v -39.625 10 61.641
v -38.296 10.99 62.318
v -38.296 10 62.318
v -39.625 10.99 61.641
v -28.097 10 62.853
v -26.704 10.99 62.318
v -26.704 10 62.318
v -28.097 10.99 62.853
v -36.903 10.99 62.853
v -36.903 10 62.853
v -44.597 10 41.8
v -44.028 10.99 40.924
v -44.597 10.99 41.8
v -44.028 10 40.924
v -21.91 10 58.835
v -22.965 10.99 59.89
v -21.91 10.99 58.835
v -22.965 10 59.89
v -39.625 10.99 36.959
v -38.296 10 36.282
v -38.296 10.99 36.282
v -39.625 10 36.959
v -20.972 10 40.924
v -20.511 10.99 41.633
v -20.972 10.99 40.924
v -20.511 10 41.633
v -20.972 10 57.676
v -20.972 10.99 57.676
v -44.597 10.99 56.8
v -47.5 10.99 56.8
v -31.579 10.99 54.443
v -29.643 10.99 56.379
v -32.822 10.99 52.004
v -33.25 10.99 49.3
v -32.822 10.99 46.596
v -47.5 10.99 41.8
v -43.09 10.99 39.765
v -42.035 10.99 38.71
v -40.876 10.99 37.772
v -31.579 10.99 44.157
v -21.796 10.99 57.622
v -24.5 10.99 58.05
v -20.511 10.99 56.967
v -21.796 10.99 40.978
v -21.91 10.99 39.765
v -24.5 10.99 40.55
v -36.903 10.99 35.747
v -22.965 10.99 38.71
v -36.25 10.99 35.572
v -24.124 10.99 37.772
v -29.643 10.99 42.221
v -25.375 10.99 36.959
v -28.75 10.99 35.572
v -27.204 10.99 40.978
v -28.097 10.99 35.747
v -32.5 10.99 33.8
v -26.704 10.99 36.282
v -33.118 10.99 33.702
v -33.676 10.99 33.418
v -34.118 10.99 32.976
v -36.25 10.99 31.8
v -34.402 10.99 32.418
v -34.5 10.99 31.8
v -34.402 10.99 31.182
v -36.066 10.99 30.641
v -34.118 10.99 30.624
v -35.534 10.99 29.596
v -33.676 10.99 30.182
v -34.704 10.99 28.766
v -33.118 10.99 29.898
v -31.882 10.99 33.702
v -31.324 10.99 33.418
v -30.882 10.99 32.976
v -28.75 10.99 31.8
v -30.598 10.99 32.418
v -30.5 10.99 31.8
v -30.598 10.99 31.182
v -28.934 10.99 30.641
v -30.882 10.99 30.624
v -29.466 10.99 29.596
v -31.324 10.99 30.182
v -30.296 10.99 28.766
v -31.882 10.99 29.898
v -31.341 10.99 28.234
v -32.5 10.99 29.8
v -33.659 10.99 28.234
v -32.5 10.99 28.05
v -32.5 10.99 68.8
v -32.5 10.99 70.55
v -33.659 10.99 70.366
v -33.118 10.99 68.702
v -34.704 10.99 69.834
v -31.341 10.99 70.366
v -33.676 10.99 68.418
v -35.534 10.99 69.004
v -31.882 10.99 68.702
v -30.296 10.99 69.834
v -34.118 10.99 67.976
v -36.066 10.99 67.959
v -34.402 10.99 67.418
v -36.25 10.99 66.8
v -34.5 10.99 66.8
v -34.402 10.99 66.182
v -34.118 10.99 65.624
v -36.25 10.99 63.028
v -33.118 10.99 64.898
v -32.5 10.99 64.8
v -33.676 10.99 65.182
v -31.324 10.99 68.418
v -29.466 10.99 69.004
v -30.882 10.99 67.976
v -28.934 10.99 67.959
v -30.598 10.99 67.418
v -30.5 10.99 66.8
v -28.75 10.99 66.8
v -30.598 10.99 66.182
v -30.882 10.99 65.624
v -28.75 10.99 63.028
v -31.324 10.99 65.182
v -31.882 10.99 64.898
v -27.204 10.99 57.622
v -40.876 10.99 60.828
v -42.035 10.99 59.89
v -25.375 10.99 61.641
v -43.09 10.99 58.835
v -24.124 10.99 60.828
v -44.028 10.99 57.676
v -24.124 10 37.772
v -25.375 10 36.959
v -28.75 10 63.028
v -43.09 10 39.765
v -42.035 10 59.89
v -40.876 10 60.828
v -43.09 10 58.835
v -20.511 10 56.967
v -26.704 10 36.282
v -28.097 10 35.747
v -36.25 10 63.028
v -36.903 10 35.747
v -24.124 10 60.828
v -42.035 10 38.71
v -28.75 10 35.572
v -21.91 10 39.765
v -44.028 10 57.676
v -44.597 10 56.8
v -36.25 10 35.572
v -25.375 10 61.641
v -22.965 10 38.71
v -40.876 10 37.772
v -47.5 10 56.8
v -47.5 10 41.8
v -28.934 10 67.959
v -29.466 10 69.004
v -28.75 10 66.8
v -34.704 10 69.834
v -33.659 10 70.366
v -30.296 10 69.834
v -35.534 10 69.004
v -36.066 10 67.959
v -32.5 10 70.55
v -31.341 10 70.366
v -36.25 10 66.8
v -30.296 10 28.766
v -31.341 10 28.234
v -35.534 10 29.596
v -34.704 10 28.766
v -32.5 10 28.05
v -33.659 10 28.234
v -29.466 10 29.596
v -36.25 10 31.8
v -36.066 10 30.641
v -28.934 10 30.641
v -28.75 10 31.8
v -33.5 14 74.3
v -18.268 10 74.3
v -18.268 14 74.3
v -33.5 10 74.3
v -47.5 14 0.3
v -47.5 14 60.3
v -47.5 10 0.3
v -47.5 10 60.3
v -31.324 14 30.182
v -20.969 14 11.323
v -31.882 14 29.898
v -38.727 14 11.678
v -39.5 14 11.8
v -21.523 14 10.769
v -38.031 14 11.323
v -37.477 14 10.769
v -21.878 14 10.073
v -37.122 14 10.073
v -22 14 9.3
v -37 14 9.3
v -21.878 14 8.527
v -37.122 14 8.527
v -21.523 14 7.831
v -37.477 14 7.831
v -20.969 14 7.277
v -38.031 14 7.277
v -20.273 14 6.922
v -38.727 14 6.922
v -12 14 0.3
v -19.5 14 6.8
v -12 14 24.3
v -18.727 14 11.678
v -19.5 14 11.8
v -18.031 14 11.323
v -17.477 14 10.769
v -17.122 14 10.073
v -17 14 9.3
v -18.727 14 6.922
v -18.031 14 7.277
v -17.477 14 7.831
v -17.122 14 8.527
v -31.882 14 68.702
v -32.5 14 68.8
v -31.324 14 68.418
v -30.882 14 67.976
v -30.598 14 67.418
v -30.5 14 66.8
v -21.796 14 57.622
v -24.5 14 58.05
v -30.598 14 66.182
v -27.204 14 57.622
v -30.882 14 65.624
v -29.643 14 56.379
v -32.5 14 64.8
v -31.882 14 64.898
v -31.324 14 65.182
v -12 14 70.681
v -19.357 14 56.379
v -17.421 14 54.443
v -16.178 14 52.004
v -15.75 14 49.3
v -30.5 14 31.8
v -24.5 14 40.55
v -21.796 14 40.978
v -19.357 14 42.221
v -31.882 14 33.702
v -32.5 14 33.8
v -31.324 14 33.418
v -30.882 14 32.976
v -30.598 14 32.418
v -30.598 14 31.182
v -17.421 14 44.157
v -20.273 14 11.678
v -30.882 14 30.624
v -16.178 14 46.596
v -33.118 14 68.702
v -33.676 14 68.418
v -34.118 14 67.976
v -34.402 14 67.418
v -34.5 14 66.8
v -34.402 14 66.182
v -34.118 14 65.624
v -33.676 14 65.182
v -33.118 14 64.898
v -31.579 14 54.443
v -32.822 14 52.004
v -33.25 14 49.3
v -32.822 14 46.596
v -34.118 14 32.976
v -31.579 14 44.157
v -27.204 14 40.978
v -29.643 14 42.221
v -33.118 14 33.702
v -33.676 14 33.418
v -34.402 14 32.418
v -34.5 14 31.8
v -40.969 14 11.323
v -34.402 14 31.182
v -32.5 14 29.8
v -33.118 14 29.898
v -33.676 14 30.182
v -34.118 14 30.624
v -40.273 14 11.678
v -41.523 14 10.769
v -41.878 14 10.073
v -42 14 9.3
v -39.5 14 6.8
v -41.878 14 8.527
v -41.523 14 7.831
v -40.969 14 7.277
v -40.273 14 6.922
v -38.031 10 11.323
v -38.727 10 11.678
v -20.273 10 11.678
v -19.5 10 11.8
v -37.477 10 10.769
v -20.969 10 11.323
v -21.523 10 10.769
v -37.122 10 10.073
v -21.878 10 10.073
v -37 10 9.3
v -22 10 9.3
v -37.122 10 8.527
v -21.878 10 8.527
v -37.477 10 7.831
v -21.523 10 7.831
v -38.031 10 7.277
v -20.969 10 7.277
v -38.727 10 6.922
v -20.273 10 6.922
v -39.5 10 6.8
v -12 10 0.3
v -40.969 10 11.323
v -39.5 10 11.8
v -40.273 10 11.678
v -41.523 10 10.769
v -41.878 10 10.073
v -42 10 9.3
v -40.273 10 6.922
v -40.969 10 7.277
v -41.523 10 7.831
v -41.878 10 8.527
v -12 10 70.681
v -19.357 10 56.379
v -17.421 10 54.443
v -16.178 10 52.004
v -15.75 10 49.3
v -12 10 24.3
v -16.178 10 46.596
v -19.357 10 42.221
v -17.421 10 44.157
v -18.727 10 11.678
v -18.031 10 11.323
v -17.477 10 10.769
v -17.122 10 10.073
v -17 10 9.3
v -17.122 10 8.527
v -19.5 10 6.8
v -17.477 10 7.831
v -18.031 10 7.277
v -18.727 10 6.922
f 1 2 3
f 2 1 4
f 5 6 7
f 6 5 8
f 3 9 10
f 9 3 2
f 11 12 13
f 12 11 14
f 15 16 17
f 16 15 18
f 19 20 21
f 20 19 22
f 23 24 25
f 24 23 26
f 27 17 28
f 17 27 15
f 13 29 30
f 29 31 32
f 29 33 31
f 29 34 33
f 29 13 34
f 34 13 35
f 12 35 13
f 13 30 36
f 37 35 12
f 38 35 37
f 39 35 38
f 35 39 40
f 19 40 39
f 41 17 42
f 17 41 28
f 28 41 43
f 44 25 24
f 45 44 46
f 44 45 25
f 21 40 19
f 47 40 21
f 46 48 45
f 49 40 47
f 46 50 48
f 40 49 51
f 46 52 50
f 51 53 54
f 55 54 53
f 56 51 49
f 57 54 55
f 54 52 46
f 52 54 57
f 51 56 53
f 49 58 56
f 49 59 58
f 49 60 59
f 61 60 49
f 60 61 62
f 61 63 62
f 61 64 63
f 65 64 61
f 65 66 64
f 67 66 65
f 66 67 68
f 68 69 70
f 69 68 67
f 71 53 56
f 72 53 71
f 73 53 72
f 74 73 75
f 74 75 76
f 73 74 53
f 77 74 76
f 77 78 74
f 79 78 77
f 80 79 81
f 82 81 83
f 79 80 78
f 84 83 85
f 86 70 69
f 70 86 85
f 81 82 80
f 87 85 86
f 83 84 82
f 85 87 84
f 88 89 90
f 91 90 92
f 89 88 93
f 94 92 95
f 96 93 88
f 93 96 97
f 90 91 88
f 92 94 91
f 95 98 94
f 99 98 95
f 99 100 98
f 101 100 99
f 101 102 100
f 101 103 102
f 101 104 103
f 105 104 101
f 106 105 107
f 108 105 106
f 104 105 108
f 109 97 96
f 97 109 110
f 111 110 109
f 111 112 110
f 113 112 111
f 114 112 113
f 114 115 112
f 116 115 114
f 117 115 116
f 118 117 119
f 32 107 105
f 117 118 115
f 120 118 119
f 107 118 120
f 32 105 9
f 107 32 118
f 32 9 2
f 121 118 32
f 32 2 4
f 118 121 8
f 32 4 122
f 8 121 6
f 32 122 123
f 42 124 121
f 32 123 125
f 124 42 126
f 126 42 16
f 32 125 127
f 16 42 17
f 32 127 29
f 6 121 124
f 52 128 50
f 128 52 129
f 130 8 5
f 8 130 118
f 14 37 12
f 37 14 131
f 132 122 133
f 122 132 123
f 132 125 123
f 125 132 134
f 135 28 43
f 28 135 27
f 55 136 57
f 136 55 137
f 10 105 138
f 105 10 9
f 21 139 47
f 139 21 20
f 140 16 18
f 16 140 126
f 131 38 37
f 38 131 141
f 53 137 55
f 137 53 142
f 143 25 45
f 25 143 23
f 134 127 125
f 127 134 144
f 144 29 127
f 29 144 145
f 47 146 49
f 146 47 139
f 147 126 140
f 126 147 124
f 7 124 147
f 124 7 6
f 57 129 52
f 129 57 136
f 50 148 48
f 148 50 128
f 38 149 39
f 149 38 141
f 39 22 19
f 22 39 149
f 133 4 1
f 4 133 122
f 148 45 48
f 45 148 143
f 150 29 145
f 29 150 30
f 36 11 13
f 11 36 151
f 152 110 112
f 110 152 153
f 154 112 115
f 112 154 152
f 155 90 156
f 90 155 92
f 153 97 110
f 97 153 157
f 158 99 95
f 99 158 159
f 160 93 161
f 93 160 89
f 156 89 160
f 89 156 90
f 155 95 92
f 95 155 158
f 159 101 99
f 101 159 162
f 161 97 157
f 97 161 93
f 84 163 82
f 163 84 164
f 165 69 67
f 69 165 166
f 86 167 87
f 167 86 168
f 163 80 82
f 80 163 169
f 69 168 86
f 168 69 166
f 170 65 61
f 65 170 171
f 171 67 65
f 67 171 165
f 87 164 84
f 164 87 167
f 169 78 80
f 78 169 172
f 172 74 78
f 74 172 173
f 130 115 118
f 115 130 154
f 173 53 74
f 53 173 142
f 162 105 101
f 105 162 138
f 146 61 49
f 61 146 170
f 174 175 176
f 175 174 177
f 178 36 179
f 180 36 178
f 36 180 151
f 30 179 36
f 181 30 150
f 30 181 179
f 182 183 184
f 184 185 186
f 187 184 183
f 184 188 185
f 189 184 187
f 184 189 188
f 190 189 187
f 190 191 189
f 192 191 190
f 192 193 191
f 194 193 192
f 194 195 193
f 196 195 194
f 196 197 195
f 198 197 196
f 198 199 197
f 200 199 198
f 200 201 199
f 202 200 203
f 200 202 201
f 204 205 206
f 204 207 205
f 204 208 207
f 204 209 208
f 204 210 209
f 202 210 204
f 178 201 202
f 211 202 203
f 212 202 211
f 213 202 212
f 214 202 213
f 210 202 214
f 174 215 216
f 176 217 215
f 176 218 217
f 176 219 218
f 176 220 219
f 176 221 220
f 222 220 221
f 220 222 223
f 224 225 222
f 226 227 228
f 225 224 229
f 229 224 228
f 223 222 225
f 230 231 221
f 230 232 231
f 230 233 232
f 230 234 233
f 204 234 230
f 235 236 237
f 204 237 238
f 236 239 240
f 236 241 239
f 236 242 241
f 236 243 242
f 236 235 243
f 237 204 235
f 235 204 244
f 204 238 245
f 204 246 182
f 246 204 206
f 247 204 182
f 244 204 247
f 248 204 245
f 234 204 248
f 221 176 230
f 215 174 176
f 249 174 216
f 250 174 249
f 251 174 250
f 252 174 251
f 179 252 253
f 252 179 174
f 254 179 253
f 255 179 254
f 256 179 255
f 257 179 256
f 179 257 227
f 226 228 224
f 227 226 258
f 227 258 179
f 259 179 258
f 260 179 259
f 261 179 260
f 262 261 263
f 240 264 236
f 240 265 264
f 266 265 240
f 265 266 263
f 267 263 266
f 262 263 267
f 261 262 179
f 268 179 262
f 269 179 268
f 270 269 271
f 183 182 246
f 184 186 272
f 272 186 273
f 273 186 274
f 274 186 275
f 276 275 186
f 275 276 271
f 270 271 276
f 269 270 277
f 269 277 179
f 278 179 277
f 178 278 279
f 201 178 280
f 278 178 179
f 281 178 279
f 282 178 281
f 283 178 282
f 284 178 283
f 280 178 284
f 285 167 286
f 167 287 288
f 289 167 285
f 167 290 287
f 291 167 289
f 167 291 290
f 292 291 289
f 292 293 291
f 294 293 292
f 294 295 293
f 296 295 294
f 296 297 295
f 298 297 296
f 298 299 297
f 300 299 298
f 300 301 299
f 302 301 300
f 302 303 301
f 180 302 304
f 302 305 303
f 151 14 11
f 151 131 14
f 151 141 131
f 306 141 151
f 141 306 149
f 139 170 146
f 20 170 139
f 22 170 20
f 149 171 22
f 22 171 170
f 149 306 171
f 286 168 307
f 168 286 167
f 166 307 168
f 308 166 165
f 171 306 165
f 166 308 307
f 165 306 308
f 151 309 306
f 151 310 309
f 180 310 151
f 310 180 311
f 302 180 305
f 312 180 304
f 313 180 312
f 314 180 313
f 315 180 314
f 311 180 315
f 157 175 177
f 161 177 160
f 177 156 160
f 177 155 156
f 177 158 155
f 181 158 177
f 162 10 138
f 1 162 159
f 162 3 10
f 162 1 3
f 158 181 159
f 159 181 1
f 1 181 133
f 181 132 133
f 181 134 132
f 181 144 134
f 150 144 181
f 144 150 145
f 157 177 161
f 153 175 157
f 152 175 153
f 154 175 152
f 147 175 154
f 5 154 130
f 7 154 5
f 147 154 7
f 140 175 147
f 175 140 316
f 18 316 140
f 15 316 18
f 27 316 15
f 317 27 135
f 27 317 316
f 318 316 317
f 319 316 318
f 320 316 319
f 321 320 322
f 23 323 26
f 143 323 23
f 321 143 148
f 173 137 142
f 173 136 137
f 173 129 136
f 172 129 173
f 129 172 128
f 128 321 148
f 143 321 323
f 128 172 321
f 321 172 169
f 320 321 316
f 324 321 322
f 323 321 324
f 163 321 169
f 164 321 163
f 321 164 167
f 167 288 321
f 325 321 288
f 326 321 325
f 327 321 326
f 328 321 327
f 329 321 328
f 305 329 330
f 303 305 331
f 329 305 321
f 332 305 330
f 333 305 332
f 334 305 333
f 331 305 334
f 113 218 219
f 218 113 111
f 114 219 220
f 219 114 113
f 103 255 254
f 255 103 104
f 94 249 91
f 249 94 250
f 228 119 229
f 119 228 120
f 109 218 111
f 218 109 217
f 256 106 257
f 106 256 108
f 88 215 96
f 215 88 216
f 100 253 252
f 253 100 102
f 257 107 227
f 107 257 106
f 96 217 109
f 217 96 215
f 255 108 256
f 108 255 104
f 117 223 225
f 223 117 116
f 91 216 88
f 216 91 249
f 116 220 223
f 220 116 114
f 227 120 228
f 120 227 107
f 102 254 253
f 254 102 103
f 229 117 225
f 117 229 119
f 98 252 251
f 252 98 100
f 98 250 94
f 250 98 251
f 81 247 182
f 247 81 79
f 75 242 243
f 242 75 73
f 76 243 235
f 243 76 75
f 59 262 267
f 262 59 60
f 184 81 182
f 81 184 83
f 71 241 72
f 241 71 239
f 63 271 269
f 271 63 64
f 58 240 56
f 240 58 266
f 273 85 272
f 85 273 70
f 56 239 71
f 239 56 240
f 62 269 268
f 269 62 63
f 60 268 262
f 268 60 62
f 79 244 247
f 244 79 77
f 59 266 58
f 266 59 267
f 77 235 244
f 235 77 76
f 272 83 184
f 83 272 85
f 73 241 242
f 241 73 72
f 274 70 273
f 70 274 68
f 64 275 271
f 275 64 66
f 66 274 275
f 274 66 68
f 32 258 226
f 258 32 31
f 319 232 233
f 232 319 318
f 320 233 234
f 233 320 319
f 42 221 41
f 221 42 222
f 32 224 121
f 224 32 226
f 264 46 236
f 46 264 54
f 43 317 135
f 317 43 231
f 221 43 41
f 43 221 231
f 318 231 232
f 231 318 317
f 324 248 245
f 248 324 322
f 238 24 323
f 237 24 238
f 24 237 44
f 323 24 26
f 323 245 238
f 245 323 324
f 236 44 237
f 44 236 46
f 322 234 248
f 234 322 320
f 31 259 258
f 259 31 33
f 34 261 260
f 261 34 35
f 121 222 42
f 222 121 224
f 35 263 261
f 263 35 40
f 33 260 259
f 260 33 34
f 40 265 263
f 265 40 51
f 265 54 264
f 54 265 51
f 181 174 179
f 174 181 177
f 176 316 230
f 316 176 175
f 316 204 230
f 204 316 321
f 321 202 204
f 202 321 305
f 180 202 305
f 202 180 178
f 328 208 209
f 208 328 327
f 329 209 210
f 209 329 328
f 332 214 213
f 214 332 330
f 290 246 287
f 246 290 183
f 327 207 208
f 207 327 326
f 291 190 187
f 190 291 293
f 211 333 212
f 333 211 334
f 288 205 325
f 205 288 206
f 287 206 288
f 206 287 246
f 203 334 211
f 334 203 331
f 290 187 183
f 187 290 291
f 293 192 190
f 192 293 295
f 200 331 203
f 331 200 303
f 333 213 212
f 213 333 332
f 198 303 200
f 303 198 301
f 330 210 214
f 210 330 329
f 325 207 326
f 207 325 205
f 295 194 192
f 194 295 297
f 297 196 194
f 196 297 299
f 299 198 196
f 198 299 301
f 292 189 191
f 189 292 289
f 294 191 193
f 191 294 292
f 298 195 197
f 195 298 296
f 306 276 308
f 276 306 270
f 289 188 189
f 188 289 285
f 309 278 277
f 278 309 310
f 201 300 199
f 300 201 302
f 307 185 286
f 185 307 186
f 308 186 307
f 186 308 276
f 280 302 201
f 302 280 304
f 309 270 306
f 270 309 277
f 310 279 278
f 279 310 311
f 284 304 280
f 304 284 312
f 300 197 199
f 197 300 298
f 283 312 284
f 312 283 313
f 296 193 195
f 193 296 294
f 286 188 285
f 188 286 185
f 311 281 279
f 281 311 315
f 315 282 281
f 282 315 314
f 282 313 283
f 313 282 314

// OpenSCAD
// Fixation d'un moteur 28BYJ-48 sur une barre V-slot 20x20 
// v1 a été imprimé.
//    *  La hauteur de la monture est insuffisante.
//    *  dans les coupures de droites sont trop importantes.
//    *  les deux trous de fixation sont un peu trop proches l'un de l'autre
// V2 a été imprimé.
// je dois déplacer les trous de fixation de la monture sur le rail. 
// Faire  un trou dans la monture pour que le pignon ne frotte pas sur la monture.
// barre V-Slot

// nov 2023 : versino pour fixer un second moteur.abs

bar_y = 20;
bar_z = 20;
// petite barre de guidage (optionnelle)
y_width_hole = 2 ;
z_width_hole = 5.5 ;

// pm : pooley_mount
pm_x = 55; 
pm_y = 4;
pm_z = 50;


module bar_20x20(){
    %cube([100, 20, 20], center = true);
};
    
module hole_m5(){
    rotate([90, 0, 0]) cylinder(h=20, r=mp_hole1_r, center = true, $fn=20);
}

module hole_m4(){
    rotate([90, 0, 0]) cylinder(h=20, r=2, center = true, $fn=20);
}

// pour fixer la monture, 2 trous de m5 distants de 10 mm.
mp_hole1_r = 5/2 ;
pm_hole1_d1 = 0 + 5;
pm_hole1_d2 = pm_hole1_d1 + 12;

module mount(){
    pm_hole2_d = 40 ; // distance de percage des trous tenant le moteur / bord droit de la mouture
    pm_hole2_distance = 35; // écart entre les trous tenant le moteur
    pm_hole2_r = 4/2;
    // motor
m_dist_to_shaft = 8 ; //
m_shaft_hole_r = (16 + 1.5) /2 ;
m_radius = (28 + 0.5) / 2; // diamètre général pour la découpe
m_pattes_defixation = 7 + 0.5;
m_profondeur = 1 ; // profondeur de la découpe pour loguer le moteur 
    
    difference(){
        // le bloc principal
        union(){
        //translate ([0, -(bar_y + pm_y)/2, 0 ])  
        cube([pm_x, pm_y, pm_z], center =true );
        
        // on ajoute une petite barre pour mieux aligner la fixation
        // translate([(pm_x-22)/2, (pm_y + y_width_hole)/2, 0])
        // cube([22, y_width_hole, z_width_hole], center = true);
        }
    // trous de fixation sur le rail
    translate ([(pm_x) /2 - pm_hole1_d1, 0, 0]) hole_m5();
    translate ([(pm_x) /2 - pm_hole1_d2, 0, 0]) hole_m5();
    // trous de fixation du moteur par 2 boulons de m4
    translate ([(pm_x) /2 - pm_hole2_d, 0, pm_hole2_distance/2]) hole_m4();
    translate ([(pm_x) /2 - pm_hole2_d, 0, -pm_hole2_distance/2]) hole_m4();
    
    // trou pour axe moteur
    translate([(pm_x/2 - pm_hole2_d + m_dist_to_shaft) ,0,  0])
    rotate([90, 0, 0]) cylinder(h=20, r=m_shaft_hole_r, center = true, $fn=20 );
    
        
    // découpe pour mieux fixer
    // un grand rond  et     // un échappement pour les fils
    d_x = 15    ; 
    d_z = 15 ;
        
    translate([(pm_x) /2 - pm_hole2_d,-(pm_y- m_profondeur)/2-0.01,0]){
        rotate([90, 0, 0]) cylinder(h=m_profondeur, r=m_radius, center = true, $fn=60);
        // zone d'échappement des fils
        translate([-20, -d_x + m_profondeur/2, -d_z/2])
        cube([d_x,d_x,d_z]);   
        // 2 petits cylindre pour loguer les pattes
        translate([0, 0, pm_hole2_distance/2])
        rotate([90, 0, 0]) cylinder(h=m_profondeur, r=m_pattes_defixation/2, center = true, $fn=20 );
        translate([0, 0, -pm_hole2_distance/2])
        rotate([90, 0, 0]) cylinder(h=m_profondeur, r=m_pattes_defixation/2, center = true, $fn=20 );
        // un petit cube pour les pattes
        translate([-m_pattes_defixation/2, -m_profondeur/2, -pm_hole2_distance/2])
      //  color("purple", 0.5) 
        cube([m_pattes_defixation,m_profondeur, pm_hole2_distance]);
        }
    // couper les parties inutiles des coins
    cut_x = 20;
    cut_y = 20;// profondeur de coupe 
    cut_h = 40; 
        // coin haut gauche
        translate([-pm_x/2, 0, +11])
        rotate([0,-45-90,0]) 
        translate([0,-15 ,-cut_h/2]) cube([cut_x, cut_y, cut_h]);     

        
        // coin haut droit
        //rotate(
        translate([20, 0 , 26]) 
        rotate([0,30,0])
        cube([cut_h, cut_y, cut_x], center = true);
     
     // Couper partie devant
     translate([8,-10,-28])
        cube([40, 30, 55]) ;
    }; // end of diff
    
    // Ajouter une barre de fixation de seulement 19 mm de large (pas de risque de
    // frottement sur la table. 
    translate([-27.5,-pm_y/2,-49])
    difference() {
    cube([35.5, pm_y, 19 +5]);
            // trous de fixation sur le rail
            translate ([28, 0, 9]) hole_m5();
            translate ([08, 0, 9]) hole_m5();
            //translate ([(pm_x) /2 - pm_hole1_d2, 0, 0]) hole_m5();
            
    }; 
    // entre le haut de cette patte et la partie supérieur on ajoute de la matièresize
    // pour que la centre du moteur soit à 29.3 mm au dessus du haut de la barre !
    
};

// On trace la barre

translate([-0, -0,10]) 

bar_20x20();

// module de fixation
//rotate([180,0,0])
translate([0-20,(bar_y+pm_y)/2 , 20 +29.3])
rotate([180,180,180])
mount();
